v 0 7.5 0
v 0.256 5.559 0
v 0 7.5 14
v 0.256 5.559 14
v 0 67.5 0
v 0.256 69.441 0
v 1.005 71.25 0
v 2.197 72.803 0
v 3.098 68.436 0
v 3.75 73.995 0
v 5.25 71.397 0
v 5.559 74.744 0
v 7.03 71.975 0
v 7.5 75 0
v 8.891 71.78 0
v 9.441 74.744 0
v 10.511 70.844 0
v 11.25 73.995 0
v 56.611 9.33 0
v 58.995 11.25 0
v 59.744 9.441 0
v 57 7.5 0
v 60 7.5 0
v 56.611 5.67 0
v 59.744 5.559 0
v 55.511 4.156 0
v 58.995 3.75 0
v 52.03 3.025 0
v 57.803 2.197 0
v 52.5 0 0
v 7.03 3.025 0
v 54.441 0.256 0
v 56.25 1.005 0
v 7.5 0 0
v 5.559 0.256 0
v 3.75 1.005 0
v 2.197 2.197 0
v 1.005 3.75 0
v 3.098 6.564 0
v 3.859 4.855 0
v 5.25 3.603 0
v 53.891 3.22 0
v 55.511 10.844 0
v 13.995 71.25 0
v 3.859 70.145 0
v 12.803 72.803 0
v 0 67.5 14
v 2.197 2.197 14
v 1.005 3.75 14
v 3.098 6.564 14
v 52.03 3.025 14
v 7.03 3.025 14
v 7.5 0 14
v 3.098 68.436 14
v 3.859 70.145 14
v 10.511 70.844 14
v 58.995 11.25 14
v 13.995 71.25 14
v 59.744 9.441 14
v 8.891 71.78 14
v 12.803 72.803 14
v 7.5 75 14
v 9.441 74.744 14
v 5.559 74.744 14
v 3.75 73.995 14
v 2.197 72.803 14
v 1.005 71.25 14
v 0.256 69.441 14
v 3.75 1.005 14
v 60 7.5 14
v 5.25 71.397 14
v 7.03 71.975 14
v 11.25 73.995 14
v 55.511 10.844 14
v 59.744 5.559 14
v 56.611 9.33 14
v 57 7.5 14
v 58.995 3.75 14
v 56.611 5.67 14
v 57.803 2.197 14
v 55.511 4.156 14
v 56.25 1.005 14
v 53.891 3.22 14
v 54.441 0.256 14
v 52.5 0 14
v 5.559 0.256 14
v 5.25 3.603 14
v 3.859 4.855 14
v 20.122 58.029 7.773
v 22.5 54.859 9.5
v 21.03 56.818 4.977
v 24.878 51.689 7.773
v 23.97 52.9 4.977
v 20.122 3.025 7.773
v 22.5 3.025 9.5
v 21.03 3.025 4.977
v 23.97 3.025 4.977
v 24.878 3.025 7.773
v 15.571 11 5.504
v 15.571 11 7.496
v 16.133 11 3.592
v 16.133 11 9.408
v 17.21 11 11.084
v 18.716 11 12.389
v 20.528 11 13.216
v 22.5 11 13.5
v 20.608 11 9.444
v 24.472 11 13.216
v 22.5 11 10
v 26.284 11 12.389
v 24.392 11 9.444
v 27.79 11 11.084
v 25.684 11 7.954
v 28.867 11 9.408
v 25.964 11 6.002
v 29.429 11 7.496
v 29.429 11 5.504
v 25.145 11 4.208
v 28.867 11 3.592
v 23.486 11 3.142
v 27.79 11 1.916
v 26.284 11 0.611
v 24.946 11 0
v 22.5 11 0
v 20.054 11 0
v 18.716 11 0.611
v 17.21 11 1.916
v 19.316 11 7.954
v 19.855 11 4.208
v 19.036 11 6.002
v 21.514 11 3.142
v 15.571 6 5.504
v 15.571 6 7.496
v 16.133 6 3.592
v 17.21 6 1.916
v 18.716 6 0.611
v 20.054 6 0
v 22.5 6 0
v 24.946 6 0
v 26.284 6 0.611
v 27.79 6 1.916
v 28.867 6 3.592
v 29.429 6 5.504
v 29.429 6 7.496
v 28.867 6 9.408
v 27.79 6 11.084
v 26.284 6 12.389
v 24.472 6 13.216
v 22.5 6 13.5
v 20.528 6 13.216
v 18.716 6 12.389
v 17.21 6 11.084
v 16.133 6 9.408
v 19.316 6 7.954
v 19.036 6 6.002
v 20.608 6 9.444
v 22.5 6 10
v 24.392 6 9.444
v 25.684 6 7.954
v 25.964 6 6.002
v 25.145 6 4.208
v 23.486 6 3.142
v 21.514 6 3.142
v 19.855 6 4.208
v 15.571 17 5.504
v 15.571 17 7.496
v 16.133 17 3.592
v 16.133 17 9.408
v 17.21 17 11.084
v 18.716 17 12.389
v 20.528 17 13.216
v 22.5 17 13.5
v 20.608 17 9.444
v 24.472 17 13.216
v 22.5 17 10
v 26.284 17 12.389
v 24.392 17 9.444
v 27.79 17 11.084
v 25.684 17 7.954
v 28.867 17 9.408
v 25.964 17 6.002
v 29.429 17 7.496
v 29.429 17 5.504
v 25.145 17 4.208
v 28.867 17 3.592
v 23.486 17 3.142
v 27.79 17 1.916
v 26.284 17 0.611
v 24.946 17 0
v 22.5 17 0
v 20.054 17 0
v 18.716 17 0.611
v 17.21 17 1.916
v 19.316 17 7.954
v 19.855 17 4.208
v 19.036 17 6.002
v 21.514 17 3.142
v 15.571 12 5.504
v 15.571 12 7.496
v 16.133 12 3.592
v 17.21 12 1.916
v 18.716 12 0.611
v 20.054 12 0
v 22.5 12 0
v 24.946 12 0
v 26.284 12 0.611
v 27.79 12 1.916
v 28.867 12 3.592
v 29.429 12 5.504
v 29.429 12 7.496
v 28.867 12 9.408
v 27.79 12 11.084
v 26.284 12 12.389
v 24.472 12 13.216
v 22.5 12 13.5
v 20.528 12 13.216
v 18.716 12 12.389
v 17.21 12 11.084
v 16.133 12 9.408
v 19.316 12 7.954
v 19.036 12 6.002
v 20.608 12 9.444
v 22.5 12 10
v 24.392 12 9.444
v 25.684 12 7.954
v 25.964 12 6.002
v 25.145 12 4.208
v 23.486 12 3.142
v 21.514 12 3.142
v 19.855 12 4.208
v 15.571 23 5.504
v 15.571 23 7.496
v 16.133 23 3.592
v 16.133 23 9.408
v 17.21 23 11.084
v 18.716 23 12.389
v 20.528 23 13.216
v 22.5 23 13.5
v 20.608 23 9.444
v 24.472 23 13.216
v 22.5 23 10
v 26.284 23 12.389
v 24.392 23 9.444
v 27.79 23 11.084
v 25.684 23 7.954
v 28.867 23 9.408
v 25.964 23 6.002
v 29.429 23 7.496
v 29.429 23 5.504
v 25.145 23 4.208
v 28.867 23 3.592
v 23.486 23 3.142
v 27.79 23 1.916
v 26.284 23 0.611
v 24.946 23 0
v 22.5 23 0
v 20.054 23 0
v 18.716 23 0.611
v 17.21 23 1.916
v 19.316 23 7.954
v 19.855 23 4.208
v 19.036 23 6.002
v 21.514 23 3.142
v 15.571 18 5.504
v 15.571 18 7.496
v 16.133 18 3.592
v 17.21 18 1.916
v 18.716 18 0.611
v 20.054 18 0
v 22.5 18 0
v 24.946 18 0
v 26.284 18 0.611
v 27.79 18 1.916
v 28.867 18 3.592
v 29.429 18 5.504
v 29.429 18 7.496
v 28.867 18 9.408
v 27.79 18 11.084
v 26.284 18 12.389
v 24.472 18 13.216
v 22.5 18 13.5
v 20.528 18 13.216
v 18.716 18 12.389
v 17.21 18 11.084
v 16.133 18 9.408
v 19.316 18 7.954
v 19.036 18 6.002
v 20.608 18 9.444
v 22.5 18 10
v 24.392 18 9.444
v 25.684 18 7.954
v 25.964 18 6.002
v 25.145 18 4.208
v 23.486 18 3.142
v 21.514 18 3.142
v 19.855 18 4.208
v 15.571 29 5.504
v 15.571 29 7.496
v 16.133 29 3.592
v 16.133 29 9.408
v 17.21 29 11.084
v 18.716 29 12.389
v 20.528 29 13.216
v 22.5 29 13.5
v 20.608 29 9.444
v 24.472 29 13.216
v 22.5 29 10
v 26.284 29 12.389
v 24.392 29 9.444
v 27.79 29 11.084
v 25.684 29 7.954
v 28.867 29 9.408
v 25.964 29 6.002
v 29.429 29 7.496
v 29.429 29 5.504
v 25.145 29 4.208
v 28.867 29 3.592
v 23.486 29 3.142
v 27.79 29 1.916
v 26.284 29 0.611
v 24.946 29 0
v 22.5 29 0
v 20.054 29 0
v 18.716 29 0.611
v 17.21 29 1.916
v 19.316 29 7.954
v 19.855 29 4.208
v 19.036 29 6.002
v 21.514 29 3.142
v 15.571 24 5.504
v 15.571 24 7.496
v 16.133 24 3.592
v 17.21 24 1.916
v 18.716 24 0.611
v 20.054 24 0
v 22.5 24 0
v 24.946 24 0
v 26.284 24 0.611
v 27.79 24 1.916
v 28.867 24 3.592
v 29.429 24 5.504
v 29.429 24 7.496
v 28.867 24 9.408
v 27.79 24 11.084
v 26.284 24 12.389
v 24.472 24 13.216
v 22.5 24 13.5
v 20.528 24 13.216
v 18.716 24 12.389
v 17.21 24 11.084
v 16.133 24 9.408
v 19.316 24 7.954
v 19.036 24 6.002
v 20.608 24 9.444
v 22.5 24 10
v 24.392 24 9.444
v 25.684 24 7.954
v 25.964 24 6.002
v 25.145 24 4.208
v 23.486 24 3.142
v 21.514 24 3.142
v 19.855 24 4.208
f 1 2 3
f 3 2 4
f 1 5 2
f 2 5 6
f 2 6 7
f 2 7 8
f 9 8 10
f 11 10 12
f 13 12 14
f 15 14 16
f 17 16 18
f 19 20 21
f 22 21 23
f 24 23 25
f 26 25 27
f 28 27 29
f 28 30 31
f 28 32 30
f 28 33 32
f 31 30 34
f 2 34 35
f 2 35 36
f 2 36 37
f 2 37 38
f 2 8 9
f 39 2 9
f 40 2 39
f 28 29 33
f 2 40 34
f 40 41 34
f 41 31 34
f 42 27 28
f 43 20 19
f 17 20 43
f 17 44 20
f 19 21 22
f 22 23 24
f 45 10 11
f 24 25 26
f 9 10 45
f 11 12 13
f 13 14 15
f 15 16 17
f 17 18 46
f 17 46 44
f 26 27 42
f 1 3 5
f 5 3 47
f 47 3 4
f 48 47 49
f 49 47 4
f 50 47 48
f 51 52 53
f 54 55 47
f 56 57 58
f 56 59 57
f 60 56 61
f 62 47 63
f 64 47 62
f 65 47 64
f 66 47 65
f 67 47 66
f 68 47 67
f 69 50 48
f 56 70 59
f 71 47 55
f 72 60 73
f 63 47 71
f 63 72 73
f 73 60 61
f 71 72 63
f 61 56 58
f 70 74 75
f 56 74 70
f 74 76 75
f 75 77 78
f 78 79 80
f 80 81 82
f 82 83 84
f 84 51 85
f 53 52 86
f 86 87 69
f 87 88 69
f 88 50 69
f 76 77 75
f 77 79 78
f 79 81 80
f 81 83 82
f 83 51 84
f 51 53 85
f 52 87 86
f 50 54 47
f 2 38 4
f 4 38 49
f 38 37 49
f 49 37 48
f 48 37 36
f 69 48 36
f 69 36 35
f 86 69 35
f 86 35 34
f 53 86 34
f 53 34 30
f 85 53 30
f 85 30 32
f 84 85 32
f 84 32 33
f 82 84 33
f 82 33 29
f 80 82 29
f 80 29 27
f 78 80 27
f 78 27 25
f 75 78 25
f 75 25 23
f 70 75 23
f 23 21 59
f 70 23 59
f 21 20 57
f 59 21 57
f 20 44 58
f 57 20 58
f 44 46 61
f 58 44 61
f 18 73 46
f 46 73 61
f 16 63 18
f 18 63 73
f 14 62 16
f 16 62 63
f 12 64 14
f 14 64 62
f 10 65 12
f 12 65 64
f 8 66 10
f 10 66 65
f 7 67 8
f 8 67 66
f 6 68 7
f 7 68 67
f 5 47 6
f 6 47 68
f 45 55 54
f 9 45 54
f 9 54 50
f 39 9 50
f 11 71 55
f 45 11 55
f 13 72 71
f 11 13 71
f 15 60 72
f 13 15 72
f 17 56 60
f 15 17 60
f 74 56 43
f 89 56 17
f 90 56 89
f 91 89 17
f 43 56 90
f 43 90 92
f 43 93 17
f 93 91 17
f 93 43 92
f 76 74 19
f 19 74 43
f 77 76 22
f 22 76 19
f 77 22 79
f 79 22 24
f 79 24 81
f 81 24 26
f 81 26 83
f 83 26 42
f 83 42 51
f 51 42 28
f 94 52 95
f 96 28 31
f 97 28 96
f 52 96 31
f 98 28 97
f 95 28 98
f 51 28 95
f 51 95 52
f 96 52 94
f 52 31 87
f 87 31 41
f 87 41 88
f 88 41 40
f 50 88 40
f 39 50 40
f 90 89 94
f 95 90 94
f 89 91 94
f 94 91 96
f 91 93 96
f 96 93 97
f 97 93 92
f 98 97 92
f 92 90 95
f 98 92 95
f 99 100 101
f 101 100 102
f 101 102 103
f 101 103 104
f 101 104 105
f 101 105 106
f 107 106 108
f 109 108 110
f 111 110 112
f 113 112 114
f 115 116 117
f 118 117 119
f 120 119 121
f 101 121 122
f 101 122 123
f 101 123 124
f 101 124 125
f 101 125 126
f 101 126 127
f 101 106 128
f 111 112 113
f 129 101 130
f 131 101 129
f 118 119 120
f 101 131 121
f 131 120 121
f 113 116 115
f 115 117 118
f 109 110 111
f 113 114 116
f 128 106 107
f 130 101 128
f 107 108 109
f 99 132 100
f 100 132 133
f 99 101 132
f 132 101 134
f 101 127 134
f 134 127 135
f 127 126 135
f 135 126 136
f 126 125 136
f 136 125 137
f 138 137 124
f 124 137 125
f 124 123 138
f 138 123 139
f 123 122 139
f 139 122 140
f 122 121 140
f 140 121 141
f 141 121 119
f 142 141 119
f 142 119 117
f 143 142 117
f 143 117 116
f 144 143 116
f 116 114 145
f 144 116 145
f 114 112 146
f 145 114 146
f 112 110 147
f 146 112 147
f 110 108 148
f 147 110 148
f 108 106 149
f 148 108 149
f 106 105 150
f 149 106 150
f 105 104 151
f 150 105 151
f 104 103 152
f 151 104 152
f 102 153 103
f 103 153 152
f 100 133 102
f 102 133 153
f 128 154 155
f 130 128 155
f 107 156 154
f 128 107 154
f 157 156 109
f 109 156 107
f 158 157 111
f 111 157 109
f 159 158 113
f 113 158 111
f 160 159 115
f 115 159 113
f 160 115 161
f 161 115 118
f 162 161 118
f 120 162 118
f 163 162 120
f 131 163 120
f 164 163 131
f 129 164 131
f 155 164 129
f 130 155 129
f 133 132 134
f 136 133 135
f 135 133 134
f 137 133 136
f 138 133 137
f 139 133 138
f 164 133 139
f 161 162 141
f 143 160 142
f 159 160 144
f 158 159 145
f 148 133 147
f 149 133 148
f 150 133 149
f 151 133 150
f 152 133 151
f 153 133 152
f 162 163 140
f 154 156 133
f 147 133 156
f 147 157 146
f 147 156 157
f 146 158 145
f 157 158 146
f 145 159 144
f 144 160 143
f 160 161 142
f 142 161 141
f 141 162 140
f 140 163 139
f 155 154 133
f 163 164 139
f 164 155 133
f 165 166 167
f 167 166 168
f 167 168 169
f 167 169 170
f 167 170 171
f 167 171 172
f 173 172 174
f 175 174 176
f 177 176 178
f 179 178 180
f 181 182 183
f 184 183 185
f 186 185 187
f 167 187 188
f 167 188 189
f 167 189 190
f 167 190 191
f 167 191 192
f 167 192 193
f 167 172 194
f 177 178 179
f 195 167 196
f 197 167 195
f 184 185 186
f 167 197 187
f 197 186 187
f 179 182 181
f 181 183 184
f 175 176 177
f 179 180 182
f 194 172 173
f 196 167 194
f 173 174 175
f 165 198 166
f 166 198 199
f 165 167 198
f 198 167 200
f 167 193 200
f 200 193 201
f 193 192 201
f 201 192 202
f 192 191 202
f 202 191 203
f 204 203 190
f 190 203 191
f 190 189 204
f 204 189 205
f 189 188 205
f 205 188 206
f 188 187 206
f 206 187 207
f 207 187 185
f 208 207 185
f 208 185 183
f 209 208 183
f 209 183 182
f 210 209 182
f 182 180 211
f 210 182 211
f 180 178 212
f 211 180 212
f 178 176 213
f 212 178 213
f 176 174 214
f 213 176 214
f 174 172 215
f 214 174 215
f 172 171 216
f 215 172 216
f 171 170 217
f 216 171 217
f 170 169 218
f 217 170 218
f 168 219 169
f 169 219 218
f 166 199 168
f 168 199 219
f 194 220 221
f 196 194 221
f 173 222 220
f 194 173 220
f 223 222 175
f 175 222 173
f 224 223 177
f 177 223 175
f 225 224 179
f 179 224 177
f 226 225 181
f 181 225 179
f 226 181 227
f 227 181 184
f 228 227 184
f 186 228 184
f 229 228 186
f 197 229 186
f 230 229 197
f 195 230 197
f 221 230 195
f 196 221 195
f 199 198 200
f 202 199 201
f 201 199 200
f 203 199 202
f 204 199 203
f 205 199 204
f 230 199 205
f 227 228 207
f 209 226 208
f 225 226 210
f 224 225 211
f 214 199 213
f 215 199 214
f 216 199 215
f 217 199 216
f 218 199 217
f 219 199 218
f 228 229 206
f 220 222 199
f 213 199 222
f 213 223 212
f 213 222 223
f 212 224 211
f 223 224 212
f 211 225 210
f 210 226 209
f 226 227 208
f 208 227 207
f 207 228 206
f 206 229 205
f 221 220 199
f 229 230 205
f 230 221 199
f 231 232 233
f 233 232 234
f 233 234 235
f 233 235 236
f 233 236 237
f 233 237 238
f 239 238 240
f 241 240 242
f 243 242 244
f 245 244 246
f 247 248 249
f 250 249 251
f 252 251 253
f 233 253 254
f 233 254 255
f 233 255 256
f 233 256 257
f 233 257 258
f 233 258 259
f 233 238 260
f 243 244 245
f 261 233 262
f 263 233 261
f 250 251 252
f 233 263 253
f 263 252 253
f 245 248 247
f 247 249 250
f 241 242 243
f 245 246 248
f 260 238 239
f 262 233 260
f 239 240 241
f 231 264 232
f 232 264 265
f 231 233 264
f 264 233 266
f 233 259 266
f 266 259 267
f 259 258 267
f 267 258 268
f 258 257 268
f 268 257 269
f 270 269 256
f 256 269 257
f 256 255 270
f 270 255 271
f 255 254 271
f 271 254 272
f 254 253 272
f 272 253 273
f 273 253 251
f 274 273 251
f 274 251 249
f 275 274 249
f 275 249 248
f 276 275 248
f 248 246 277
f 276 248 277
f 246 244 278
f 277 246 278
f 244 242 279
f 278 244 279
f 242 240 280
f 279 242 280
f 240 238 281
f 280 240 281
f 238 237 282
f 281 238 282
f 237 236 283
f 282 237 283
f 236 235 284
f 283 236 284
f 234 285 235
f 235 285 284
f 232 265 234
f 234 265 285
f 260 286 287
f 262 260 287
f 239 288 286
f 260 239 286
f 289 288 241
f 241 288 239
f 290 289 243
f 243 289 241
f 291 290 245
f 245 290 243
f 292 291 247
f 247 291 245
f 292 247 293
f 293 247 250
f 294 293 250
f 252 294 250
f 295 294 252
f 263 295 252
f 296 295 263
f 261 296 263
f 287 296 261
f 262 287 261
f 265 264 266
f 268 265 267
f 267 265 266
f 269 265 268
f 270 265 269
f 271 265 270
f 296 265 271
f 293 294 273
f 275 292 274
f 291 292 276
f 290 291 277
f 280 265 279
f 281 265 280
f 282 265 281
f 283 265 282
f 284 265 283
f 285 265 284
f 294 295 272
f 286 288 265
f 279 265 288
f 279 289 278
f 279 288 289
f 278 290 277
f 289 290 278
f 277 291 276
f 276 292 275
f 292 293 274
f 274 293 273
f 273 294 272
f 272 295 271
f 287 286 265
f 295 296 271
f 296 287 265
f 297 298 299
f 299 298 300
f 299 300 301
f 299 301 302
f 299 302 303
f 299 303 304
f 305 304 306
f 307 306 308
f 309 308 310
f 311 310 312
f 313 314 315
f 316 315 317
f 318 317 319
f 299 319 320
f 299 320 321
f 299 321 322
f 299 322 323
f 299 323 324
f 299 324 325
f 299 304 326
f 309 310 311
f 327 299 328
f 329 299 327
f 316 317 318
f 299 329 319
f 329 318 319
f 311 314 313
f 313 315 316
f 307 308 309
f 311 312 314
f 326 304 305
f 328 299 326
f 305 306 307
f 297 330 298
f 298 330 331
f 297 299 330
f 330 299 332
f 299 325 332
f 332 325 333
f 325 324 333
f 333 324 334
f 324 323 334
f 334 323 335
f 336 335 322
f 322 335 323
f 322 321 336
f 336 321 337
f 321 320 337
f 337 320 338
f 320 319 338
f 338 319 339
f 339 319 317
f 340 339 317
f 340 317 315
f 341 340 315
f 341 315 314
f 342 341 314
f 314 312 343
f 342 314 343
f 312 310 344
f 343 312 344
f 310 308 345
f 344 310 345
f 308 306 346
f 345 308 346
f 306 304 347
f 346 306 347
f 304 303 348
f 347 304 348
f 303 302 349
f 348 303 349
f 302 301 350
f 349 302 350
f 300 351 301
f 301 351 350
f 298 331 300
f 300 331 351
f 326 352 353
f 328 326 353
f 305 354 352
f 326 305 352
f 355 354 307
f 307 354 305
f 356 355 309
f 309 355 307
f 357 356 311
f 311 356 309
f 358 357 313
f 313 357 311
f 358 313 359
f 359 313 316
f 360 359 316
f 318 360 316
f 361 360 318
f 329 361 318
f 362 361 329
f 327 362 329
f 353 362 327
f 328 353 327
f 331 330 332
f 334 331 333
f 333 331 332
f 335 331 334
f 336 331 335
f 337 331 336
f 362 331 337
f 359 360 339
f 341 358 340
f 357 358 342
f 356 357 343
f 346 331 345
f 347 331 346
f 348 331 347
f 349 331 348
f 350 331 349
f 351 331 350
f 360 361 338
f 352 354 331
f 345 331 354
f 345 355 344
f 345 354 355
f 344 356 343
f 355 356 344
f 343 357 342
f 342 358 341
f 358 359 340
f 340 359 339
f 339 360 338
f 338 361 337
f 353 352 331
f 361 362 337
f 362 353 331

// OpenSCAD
module rounded_control(base, height, length, radius){
	hull(){
		cylinder(length, radius, radius);
		translate([base, 0, 0])
			cylinder(length, radius, radius);
		translate([0, height, 0])
			cylinder(length, radius, radius);
	}
}

module frame(base, height, length, radius, thickness){
	union(){
		difference(){
			translate([radius, radius, 0])
				rounded_control(base, height, length, radius);
			translate([thickness, thickness, -.5 * length])
				translate([radius-thickness, radius-thickness, 0])
					rounded_control(base, height, 2*length, radius-thickness);
		}
	}
}

module abacus(bar_length, bar_radius, num_pieces, piece_radius, piece_thickness, spacing){
	cylinder(bar_length, bar_radius, bar_radius, $fn=5);
	for (i=[1:num_pieces]){	
		translate([-.5*spacing, 0, i*(piece_thickness+spacing)])
			difference(){	
				cylinder(piece_thickness, piece_radius, piece_radius);
				cylinder(piece_thickness, bar_radius + spacing, bar_radius + spacing);
				translate([-3 * piece_radius + .5*spacing, -piece_radius, 0])
					cube([2 * piece_radius, 2 * piece_radius, piece_thickness]);
			}
	}
	
}


base = 45;
height = 60;
length = 14;
radius = 7.5;
thickness = 3;



bar_length = 60;
bar_radius = 2.5;
num_pieces = 4;
piece_radius = 7;
piece_thickness = 5;
spacing = 1;

union(){
	frame(base, height, length, radius, thickness);
	intersection(){
		translate([.5 * base, 0, .5*length])
			rotate([-90, -90, 0])
				abacus(bar_length, bar_radius, num_pieces, piece_radius, piece_thickness, spacing);
		translate([radius, radius, 0])
			rounded_control(base, height, length, radius);
	}
}
